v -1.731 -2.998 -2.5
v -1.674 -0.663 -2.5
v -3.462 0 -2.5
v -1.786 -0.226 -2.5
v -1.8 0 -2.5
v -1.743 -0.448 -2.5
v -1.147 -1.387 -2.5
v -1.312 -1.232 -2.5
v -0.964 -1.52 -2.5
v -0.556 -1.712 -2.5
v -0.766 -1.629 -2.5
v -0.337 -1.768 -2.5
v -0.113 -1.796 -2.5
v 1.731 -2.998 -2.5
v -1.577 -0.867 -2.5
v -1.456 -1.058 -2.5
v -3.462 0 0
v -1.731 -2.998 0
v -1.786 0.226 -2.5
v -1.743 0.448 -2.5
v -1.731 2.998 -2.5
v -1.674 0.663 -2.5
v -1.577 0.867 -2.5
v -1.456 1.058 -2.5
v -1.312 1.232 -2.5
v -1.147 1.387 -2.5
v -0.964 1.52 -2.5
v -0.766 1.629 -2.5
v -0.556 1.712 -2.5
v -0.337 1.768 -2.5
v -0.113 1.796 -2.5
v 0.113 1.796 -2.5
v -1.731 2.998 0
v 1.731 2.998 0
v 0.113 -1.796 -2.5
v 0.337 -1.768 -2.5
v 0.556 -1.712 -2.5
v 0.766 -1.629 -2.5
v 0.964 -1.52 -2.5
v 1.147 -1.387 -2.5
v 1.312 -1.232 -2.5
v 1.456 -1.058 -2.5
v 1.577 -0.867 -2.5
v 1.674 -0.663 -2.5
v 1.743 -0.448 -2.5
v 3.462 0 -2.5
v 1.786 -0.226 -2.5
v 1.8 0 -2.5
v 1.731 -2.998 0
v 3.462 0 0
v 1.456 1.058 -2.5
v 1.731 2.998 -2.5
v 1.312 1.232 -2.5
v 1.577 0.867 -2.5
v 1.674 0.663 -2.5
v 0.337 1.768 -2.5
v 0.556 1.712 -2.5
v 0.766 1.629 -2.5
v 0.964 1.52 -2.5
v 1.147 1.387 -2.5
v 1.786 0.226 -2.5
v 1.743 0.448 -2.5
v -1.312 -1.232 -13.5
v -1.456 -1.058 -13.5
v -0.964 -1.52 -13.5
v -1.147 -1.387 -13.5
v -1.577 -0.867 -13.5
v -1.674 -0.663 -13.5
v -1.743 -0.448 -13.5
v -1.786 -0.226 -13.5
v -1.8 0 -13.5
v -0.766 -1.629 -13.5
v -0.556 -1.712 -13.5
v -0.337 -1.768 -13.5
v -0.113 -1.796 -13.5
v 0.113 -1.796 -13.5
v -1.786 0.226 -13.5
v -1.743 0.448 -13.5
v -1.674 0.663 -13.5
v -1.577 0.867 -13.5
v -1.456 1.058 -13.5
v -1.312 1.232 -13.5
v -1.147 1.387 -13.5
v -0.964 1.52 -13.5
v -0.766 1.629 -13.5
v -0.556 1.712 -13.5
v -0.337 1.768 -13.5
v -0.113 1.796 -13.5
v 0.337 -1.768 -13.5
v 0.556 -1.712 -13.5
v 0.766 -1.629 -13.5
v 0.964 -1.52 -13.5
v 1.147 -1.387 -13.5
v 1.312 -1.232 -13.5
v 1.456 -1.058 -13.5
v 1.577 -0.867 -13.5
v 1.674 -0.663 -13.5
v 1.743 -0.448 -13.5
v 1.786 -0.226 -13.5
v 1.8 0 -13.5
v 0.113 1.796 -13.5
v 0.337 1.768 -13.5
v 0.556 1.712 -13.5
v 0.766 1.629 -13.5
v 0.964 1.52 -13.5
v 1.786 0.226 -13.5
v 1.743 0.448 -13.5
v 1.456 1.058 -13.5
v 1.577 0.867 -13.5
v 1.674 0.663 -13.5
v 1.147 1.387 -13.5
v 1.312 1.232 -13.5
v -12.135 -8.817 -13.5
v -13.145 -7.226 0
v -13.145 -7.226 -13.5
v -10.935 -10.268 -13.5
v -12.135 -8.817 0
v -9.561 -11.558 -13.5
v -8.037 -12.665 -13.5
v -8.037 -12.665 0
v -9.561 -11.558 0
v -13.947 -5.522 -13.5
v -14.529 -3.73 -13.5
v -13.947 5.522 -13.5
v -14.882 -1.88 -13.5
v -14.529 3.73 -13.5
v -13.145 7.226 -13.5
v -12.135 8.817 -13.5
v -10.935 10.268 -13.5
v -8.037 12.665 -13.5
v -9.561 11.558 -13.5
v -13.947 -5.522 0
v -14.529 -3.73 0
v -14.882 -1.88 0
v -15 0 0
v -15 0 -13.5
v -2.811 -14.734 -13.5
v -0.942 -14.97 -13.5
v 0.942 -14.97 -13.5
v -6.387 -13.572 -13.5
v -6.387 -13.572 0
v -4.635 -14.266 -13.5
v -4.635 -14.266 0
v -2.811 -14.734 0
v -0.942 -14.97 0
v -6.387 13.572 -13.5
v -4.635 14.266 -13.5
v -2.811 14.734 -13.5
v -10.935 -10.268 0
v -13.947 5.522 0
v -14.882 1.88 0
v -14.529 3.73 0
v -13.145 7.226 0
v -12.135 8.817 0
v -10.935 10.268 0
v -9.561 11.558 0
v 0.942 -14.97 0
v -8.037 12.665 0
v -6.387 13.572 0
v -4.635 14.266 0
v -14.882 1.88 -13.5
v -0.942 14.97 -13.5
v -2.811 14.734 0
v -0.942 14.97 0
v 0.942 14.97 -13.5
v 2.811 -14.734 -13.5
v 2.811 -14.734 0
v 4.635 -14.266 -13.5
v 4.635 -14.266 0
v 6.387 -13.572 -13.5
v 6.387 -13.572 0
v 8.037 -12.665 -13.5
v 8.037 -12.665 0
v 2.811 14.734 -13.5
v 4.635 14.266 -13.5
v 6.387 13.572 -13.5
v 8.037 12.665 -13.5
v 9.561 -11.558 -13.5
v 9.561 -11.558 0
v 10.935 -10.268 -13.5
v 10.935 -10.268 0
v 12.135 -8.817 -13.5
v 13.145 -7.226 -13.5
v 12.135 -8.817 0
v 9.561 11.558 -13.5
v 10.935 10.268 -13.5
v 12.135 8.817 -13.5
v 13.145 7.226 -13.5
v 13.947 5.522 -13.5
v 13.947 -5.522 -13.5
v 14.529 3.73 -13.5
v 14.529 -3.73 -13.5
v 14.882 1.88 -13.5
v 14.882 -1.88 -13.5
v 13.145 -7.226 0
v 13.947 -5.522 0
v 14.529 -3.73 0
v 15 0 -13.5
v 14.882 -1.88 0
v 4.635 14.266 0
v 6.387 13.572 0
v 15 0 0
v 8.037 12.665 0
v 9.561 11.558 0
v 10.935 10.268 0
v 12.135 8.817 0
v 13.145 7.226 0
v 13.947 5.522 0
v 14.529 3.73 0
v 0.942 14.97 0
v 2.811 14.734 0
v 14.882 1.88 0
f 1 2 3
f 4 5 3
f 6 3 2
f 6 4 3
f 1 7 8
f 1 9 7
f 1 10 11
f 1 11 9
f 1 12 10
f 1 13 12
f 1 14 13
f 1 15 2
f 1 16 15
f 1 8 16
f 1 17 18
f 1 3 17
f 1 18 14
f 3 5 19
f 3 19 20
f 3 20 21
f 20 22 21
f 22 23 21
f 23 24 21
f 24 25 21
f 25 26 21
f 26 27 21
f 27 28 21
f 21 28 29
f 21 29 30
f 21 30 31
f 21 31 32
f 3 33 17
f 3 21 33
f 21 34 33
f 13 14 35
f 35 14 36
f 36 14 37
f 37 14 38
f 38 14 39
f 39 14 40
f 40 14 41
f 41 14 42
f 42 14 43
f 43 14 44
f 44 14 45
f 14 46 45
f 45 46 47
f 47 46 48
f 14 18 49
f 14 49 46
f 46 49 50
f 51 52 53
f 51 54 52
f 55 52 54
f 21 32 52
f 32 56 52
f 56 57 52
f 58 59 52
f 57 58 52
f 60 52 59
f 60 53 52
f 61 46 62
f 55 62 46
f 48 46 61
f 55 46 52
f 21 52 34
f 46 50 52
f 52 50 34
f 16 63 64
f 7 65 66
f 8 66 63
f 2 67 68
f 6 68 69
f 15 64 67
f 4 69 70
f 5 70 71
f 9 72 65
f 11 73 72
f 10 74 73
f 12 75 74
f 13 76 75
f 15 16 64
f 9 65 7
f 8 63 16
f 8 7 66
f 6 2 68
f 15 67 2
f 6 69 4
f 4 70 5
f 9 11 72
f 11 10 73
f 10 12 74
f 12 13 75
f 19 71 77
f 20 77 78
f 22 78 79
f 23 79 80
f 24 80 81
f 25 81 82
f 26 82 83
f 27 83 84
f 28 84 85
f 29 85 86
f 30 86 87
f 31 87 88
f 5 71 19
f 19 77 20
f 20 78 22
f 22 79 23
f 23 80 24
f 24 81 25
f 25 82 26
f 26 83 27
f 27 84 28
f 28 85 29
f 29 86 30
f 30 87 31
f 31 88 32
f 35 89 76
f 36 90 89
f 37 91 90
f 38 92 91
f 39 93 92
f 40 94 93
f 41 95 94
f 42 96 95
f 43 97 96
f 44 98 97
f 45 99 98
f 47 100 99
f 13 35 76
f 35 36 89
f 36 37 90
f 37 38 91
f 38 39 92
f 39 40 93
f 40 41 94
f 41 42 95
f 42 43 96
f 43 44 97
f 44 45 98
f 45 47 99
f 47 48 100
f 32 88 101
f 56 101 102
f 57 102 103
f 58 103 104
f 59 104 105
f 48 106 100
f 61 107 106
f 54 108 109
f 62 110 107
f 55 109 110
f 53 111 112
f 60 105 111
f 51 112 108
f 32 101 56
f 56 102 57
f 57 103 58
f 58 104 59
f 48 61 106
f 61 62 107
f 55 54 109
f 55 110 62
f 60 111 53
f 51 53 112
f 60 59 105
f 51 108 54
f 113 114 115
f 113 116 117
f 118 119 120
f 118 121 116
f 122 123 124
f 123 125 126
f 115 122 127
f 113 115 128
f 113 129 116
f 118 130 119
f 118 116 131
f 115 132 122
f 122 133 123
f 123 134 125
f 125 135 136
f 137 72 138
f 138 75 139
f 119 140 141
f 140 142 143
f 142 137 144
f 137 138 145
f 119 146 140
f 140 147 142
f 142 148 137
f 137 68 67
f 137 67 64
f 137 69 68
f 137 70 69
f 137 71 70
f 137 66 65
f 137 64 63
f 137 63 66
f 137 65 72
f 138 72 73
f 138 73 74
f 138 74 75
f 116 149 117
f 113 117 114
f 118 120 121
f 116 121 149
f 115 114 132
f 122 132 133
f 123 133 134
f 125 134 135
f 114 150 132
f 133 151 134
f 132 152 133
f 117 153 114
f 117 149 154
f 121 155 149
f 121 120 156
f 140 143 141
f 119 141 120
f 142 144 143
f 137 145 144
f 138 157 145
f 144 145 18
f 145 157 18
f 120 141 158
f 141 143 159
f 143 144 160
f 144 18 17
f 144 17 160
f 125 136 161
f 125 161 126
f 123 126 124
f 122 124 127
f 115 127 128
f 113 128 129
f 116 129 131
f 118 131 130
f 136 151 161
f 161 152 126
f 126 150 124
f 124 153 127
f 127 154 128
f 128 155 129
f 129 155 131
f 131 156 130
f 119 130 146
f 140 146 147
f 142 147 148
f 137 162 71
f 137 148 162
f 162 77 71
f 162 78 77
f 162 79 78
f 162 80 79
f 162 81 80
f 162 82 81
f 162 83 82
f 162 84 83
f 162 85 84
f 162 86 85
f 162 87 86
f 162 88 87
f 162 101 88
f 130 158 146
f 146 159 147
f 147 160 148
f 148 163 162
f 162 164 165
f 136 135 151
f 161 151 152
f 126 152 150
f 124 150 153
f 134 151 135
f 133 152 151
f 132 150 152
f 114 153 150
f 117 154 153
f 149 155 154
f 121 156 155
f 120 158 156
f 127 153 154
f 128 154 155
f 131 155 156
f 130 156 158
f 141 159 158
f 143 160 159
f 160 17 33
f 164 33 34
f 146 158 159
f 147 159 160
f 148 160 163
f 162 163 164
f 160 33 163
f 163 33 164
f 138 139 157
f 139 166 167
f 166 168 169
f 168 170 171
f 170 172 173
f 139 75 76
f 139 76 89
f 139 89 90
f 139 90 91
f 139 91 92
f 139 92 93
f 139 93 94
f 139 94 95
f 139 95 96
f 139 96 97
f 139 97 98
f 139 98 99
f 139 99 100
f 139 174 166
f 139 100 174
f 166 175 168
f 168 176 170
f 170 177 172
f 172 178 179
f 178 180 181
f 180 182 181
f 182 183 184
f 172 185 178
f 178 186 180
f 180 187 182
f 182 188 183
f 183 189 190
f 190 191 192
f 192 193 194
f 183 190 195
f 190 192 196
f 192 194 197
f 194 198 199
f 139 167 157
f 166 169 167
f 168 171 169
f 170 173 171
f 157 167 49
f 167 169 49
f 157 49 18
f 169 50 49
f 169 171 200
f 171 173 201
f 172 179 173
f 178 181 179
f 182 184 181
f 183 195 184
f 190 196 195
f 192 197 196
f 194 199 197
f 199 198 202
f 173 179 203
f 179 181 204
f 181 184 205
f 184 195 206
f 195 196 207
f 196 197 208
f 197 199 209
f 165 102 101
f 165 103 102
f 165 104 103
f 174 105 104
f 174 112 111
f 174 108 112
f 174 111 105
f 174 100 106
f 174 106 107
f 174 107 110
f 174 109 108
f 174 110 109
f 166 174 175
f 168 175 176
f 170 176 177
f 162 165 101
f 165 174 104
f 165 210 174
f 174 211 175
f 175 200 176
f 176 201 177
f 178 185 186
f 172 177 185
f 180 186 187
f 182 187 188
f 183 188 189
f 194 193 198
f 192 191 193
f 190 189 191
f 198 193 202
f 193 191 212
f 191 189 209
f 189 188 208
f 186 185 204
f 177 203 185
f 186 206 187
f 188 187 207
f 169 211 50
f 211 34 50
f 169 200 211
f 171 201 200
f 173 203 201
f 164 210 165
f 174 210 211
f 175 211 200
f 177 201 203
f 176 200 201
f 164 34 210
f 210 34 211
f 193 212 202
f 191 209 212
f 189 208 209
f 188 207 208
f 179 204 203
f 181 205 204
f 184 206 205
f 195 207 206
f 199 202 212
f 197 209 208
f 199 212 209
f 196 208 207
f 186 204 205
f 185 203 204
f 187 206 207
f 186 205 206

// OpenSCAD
$fn = 50;

difference() {
	union() {
		translate(v = [0, 0, -13.5]) {
			cylinder(h = 13.5, r = 15.0);
		}
	}
	union() {
		translate(v = [0, 0, 0]) {
			rotate(a = [0, 0, 0]) {
				difference() {
					union() {
						translate(v = [0, 0, -2.5]) {
							linear_extrude(height = 2.5) {
								polygon(points = [[3.4619999999999997, 0.0], [1.7310000000000003, 2.9981799479017264], [-1.7309999999999992, 2.9981799479017264], [-3.4619999999999997, 4.2397272186481365e-16], [-1.7310000000000014, -2.998179947901726], [1.7309999999999977, -2.9981799479017277]]);
							}
						}
					}
					union();
				}
			}
		}
		#translate(v = [0, 0, -100.0]) {
			cylinder(h = 200, r = 1.8);
		}
	}
}
